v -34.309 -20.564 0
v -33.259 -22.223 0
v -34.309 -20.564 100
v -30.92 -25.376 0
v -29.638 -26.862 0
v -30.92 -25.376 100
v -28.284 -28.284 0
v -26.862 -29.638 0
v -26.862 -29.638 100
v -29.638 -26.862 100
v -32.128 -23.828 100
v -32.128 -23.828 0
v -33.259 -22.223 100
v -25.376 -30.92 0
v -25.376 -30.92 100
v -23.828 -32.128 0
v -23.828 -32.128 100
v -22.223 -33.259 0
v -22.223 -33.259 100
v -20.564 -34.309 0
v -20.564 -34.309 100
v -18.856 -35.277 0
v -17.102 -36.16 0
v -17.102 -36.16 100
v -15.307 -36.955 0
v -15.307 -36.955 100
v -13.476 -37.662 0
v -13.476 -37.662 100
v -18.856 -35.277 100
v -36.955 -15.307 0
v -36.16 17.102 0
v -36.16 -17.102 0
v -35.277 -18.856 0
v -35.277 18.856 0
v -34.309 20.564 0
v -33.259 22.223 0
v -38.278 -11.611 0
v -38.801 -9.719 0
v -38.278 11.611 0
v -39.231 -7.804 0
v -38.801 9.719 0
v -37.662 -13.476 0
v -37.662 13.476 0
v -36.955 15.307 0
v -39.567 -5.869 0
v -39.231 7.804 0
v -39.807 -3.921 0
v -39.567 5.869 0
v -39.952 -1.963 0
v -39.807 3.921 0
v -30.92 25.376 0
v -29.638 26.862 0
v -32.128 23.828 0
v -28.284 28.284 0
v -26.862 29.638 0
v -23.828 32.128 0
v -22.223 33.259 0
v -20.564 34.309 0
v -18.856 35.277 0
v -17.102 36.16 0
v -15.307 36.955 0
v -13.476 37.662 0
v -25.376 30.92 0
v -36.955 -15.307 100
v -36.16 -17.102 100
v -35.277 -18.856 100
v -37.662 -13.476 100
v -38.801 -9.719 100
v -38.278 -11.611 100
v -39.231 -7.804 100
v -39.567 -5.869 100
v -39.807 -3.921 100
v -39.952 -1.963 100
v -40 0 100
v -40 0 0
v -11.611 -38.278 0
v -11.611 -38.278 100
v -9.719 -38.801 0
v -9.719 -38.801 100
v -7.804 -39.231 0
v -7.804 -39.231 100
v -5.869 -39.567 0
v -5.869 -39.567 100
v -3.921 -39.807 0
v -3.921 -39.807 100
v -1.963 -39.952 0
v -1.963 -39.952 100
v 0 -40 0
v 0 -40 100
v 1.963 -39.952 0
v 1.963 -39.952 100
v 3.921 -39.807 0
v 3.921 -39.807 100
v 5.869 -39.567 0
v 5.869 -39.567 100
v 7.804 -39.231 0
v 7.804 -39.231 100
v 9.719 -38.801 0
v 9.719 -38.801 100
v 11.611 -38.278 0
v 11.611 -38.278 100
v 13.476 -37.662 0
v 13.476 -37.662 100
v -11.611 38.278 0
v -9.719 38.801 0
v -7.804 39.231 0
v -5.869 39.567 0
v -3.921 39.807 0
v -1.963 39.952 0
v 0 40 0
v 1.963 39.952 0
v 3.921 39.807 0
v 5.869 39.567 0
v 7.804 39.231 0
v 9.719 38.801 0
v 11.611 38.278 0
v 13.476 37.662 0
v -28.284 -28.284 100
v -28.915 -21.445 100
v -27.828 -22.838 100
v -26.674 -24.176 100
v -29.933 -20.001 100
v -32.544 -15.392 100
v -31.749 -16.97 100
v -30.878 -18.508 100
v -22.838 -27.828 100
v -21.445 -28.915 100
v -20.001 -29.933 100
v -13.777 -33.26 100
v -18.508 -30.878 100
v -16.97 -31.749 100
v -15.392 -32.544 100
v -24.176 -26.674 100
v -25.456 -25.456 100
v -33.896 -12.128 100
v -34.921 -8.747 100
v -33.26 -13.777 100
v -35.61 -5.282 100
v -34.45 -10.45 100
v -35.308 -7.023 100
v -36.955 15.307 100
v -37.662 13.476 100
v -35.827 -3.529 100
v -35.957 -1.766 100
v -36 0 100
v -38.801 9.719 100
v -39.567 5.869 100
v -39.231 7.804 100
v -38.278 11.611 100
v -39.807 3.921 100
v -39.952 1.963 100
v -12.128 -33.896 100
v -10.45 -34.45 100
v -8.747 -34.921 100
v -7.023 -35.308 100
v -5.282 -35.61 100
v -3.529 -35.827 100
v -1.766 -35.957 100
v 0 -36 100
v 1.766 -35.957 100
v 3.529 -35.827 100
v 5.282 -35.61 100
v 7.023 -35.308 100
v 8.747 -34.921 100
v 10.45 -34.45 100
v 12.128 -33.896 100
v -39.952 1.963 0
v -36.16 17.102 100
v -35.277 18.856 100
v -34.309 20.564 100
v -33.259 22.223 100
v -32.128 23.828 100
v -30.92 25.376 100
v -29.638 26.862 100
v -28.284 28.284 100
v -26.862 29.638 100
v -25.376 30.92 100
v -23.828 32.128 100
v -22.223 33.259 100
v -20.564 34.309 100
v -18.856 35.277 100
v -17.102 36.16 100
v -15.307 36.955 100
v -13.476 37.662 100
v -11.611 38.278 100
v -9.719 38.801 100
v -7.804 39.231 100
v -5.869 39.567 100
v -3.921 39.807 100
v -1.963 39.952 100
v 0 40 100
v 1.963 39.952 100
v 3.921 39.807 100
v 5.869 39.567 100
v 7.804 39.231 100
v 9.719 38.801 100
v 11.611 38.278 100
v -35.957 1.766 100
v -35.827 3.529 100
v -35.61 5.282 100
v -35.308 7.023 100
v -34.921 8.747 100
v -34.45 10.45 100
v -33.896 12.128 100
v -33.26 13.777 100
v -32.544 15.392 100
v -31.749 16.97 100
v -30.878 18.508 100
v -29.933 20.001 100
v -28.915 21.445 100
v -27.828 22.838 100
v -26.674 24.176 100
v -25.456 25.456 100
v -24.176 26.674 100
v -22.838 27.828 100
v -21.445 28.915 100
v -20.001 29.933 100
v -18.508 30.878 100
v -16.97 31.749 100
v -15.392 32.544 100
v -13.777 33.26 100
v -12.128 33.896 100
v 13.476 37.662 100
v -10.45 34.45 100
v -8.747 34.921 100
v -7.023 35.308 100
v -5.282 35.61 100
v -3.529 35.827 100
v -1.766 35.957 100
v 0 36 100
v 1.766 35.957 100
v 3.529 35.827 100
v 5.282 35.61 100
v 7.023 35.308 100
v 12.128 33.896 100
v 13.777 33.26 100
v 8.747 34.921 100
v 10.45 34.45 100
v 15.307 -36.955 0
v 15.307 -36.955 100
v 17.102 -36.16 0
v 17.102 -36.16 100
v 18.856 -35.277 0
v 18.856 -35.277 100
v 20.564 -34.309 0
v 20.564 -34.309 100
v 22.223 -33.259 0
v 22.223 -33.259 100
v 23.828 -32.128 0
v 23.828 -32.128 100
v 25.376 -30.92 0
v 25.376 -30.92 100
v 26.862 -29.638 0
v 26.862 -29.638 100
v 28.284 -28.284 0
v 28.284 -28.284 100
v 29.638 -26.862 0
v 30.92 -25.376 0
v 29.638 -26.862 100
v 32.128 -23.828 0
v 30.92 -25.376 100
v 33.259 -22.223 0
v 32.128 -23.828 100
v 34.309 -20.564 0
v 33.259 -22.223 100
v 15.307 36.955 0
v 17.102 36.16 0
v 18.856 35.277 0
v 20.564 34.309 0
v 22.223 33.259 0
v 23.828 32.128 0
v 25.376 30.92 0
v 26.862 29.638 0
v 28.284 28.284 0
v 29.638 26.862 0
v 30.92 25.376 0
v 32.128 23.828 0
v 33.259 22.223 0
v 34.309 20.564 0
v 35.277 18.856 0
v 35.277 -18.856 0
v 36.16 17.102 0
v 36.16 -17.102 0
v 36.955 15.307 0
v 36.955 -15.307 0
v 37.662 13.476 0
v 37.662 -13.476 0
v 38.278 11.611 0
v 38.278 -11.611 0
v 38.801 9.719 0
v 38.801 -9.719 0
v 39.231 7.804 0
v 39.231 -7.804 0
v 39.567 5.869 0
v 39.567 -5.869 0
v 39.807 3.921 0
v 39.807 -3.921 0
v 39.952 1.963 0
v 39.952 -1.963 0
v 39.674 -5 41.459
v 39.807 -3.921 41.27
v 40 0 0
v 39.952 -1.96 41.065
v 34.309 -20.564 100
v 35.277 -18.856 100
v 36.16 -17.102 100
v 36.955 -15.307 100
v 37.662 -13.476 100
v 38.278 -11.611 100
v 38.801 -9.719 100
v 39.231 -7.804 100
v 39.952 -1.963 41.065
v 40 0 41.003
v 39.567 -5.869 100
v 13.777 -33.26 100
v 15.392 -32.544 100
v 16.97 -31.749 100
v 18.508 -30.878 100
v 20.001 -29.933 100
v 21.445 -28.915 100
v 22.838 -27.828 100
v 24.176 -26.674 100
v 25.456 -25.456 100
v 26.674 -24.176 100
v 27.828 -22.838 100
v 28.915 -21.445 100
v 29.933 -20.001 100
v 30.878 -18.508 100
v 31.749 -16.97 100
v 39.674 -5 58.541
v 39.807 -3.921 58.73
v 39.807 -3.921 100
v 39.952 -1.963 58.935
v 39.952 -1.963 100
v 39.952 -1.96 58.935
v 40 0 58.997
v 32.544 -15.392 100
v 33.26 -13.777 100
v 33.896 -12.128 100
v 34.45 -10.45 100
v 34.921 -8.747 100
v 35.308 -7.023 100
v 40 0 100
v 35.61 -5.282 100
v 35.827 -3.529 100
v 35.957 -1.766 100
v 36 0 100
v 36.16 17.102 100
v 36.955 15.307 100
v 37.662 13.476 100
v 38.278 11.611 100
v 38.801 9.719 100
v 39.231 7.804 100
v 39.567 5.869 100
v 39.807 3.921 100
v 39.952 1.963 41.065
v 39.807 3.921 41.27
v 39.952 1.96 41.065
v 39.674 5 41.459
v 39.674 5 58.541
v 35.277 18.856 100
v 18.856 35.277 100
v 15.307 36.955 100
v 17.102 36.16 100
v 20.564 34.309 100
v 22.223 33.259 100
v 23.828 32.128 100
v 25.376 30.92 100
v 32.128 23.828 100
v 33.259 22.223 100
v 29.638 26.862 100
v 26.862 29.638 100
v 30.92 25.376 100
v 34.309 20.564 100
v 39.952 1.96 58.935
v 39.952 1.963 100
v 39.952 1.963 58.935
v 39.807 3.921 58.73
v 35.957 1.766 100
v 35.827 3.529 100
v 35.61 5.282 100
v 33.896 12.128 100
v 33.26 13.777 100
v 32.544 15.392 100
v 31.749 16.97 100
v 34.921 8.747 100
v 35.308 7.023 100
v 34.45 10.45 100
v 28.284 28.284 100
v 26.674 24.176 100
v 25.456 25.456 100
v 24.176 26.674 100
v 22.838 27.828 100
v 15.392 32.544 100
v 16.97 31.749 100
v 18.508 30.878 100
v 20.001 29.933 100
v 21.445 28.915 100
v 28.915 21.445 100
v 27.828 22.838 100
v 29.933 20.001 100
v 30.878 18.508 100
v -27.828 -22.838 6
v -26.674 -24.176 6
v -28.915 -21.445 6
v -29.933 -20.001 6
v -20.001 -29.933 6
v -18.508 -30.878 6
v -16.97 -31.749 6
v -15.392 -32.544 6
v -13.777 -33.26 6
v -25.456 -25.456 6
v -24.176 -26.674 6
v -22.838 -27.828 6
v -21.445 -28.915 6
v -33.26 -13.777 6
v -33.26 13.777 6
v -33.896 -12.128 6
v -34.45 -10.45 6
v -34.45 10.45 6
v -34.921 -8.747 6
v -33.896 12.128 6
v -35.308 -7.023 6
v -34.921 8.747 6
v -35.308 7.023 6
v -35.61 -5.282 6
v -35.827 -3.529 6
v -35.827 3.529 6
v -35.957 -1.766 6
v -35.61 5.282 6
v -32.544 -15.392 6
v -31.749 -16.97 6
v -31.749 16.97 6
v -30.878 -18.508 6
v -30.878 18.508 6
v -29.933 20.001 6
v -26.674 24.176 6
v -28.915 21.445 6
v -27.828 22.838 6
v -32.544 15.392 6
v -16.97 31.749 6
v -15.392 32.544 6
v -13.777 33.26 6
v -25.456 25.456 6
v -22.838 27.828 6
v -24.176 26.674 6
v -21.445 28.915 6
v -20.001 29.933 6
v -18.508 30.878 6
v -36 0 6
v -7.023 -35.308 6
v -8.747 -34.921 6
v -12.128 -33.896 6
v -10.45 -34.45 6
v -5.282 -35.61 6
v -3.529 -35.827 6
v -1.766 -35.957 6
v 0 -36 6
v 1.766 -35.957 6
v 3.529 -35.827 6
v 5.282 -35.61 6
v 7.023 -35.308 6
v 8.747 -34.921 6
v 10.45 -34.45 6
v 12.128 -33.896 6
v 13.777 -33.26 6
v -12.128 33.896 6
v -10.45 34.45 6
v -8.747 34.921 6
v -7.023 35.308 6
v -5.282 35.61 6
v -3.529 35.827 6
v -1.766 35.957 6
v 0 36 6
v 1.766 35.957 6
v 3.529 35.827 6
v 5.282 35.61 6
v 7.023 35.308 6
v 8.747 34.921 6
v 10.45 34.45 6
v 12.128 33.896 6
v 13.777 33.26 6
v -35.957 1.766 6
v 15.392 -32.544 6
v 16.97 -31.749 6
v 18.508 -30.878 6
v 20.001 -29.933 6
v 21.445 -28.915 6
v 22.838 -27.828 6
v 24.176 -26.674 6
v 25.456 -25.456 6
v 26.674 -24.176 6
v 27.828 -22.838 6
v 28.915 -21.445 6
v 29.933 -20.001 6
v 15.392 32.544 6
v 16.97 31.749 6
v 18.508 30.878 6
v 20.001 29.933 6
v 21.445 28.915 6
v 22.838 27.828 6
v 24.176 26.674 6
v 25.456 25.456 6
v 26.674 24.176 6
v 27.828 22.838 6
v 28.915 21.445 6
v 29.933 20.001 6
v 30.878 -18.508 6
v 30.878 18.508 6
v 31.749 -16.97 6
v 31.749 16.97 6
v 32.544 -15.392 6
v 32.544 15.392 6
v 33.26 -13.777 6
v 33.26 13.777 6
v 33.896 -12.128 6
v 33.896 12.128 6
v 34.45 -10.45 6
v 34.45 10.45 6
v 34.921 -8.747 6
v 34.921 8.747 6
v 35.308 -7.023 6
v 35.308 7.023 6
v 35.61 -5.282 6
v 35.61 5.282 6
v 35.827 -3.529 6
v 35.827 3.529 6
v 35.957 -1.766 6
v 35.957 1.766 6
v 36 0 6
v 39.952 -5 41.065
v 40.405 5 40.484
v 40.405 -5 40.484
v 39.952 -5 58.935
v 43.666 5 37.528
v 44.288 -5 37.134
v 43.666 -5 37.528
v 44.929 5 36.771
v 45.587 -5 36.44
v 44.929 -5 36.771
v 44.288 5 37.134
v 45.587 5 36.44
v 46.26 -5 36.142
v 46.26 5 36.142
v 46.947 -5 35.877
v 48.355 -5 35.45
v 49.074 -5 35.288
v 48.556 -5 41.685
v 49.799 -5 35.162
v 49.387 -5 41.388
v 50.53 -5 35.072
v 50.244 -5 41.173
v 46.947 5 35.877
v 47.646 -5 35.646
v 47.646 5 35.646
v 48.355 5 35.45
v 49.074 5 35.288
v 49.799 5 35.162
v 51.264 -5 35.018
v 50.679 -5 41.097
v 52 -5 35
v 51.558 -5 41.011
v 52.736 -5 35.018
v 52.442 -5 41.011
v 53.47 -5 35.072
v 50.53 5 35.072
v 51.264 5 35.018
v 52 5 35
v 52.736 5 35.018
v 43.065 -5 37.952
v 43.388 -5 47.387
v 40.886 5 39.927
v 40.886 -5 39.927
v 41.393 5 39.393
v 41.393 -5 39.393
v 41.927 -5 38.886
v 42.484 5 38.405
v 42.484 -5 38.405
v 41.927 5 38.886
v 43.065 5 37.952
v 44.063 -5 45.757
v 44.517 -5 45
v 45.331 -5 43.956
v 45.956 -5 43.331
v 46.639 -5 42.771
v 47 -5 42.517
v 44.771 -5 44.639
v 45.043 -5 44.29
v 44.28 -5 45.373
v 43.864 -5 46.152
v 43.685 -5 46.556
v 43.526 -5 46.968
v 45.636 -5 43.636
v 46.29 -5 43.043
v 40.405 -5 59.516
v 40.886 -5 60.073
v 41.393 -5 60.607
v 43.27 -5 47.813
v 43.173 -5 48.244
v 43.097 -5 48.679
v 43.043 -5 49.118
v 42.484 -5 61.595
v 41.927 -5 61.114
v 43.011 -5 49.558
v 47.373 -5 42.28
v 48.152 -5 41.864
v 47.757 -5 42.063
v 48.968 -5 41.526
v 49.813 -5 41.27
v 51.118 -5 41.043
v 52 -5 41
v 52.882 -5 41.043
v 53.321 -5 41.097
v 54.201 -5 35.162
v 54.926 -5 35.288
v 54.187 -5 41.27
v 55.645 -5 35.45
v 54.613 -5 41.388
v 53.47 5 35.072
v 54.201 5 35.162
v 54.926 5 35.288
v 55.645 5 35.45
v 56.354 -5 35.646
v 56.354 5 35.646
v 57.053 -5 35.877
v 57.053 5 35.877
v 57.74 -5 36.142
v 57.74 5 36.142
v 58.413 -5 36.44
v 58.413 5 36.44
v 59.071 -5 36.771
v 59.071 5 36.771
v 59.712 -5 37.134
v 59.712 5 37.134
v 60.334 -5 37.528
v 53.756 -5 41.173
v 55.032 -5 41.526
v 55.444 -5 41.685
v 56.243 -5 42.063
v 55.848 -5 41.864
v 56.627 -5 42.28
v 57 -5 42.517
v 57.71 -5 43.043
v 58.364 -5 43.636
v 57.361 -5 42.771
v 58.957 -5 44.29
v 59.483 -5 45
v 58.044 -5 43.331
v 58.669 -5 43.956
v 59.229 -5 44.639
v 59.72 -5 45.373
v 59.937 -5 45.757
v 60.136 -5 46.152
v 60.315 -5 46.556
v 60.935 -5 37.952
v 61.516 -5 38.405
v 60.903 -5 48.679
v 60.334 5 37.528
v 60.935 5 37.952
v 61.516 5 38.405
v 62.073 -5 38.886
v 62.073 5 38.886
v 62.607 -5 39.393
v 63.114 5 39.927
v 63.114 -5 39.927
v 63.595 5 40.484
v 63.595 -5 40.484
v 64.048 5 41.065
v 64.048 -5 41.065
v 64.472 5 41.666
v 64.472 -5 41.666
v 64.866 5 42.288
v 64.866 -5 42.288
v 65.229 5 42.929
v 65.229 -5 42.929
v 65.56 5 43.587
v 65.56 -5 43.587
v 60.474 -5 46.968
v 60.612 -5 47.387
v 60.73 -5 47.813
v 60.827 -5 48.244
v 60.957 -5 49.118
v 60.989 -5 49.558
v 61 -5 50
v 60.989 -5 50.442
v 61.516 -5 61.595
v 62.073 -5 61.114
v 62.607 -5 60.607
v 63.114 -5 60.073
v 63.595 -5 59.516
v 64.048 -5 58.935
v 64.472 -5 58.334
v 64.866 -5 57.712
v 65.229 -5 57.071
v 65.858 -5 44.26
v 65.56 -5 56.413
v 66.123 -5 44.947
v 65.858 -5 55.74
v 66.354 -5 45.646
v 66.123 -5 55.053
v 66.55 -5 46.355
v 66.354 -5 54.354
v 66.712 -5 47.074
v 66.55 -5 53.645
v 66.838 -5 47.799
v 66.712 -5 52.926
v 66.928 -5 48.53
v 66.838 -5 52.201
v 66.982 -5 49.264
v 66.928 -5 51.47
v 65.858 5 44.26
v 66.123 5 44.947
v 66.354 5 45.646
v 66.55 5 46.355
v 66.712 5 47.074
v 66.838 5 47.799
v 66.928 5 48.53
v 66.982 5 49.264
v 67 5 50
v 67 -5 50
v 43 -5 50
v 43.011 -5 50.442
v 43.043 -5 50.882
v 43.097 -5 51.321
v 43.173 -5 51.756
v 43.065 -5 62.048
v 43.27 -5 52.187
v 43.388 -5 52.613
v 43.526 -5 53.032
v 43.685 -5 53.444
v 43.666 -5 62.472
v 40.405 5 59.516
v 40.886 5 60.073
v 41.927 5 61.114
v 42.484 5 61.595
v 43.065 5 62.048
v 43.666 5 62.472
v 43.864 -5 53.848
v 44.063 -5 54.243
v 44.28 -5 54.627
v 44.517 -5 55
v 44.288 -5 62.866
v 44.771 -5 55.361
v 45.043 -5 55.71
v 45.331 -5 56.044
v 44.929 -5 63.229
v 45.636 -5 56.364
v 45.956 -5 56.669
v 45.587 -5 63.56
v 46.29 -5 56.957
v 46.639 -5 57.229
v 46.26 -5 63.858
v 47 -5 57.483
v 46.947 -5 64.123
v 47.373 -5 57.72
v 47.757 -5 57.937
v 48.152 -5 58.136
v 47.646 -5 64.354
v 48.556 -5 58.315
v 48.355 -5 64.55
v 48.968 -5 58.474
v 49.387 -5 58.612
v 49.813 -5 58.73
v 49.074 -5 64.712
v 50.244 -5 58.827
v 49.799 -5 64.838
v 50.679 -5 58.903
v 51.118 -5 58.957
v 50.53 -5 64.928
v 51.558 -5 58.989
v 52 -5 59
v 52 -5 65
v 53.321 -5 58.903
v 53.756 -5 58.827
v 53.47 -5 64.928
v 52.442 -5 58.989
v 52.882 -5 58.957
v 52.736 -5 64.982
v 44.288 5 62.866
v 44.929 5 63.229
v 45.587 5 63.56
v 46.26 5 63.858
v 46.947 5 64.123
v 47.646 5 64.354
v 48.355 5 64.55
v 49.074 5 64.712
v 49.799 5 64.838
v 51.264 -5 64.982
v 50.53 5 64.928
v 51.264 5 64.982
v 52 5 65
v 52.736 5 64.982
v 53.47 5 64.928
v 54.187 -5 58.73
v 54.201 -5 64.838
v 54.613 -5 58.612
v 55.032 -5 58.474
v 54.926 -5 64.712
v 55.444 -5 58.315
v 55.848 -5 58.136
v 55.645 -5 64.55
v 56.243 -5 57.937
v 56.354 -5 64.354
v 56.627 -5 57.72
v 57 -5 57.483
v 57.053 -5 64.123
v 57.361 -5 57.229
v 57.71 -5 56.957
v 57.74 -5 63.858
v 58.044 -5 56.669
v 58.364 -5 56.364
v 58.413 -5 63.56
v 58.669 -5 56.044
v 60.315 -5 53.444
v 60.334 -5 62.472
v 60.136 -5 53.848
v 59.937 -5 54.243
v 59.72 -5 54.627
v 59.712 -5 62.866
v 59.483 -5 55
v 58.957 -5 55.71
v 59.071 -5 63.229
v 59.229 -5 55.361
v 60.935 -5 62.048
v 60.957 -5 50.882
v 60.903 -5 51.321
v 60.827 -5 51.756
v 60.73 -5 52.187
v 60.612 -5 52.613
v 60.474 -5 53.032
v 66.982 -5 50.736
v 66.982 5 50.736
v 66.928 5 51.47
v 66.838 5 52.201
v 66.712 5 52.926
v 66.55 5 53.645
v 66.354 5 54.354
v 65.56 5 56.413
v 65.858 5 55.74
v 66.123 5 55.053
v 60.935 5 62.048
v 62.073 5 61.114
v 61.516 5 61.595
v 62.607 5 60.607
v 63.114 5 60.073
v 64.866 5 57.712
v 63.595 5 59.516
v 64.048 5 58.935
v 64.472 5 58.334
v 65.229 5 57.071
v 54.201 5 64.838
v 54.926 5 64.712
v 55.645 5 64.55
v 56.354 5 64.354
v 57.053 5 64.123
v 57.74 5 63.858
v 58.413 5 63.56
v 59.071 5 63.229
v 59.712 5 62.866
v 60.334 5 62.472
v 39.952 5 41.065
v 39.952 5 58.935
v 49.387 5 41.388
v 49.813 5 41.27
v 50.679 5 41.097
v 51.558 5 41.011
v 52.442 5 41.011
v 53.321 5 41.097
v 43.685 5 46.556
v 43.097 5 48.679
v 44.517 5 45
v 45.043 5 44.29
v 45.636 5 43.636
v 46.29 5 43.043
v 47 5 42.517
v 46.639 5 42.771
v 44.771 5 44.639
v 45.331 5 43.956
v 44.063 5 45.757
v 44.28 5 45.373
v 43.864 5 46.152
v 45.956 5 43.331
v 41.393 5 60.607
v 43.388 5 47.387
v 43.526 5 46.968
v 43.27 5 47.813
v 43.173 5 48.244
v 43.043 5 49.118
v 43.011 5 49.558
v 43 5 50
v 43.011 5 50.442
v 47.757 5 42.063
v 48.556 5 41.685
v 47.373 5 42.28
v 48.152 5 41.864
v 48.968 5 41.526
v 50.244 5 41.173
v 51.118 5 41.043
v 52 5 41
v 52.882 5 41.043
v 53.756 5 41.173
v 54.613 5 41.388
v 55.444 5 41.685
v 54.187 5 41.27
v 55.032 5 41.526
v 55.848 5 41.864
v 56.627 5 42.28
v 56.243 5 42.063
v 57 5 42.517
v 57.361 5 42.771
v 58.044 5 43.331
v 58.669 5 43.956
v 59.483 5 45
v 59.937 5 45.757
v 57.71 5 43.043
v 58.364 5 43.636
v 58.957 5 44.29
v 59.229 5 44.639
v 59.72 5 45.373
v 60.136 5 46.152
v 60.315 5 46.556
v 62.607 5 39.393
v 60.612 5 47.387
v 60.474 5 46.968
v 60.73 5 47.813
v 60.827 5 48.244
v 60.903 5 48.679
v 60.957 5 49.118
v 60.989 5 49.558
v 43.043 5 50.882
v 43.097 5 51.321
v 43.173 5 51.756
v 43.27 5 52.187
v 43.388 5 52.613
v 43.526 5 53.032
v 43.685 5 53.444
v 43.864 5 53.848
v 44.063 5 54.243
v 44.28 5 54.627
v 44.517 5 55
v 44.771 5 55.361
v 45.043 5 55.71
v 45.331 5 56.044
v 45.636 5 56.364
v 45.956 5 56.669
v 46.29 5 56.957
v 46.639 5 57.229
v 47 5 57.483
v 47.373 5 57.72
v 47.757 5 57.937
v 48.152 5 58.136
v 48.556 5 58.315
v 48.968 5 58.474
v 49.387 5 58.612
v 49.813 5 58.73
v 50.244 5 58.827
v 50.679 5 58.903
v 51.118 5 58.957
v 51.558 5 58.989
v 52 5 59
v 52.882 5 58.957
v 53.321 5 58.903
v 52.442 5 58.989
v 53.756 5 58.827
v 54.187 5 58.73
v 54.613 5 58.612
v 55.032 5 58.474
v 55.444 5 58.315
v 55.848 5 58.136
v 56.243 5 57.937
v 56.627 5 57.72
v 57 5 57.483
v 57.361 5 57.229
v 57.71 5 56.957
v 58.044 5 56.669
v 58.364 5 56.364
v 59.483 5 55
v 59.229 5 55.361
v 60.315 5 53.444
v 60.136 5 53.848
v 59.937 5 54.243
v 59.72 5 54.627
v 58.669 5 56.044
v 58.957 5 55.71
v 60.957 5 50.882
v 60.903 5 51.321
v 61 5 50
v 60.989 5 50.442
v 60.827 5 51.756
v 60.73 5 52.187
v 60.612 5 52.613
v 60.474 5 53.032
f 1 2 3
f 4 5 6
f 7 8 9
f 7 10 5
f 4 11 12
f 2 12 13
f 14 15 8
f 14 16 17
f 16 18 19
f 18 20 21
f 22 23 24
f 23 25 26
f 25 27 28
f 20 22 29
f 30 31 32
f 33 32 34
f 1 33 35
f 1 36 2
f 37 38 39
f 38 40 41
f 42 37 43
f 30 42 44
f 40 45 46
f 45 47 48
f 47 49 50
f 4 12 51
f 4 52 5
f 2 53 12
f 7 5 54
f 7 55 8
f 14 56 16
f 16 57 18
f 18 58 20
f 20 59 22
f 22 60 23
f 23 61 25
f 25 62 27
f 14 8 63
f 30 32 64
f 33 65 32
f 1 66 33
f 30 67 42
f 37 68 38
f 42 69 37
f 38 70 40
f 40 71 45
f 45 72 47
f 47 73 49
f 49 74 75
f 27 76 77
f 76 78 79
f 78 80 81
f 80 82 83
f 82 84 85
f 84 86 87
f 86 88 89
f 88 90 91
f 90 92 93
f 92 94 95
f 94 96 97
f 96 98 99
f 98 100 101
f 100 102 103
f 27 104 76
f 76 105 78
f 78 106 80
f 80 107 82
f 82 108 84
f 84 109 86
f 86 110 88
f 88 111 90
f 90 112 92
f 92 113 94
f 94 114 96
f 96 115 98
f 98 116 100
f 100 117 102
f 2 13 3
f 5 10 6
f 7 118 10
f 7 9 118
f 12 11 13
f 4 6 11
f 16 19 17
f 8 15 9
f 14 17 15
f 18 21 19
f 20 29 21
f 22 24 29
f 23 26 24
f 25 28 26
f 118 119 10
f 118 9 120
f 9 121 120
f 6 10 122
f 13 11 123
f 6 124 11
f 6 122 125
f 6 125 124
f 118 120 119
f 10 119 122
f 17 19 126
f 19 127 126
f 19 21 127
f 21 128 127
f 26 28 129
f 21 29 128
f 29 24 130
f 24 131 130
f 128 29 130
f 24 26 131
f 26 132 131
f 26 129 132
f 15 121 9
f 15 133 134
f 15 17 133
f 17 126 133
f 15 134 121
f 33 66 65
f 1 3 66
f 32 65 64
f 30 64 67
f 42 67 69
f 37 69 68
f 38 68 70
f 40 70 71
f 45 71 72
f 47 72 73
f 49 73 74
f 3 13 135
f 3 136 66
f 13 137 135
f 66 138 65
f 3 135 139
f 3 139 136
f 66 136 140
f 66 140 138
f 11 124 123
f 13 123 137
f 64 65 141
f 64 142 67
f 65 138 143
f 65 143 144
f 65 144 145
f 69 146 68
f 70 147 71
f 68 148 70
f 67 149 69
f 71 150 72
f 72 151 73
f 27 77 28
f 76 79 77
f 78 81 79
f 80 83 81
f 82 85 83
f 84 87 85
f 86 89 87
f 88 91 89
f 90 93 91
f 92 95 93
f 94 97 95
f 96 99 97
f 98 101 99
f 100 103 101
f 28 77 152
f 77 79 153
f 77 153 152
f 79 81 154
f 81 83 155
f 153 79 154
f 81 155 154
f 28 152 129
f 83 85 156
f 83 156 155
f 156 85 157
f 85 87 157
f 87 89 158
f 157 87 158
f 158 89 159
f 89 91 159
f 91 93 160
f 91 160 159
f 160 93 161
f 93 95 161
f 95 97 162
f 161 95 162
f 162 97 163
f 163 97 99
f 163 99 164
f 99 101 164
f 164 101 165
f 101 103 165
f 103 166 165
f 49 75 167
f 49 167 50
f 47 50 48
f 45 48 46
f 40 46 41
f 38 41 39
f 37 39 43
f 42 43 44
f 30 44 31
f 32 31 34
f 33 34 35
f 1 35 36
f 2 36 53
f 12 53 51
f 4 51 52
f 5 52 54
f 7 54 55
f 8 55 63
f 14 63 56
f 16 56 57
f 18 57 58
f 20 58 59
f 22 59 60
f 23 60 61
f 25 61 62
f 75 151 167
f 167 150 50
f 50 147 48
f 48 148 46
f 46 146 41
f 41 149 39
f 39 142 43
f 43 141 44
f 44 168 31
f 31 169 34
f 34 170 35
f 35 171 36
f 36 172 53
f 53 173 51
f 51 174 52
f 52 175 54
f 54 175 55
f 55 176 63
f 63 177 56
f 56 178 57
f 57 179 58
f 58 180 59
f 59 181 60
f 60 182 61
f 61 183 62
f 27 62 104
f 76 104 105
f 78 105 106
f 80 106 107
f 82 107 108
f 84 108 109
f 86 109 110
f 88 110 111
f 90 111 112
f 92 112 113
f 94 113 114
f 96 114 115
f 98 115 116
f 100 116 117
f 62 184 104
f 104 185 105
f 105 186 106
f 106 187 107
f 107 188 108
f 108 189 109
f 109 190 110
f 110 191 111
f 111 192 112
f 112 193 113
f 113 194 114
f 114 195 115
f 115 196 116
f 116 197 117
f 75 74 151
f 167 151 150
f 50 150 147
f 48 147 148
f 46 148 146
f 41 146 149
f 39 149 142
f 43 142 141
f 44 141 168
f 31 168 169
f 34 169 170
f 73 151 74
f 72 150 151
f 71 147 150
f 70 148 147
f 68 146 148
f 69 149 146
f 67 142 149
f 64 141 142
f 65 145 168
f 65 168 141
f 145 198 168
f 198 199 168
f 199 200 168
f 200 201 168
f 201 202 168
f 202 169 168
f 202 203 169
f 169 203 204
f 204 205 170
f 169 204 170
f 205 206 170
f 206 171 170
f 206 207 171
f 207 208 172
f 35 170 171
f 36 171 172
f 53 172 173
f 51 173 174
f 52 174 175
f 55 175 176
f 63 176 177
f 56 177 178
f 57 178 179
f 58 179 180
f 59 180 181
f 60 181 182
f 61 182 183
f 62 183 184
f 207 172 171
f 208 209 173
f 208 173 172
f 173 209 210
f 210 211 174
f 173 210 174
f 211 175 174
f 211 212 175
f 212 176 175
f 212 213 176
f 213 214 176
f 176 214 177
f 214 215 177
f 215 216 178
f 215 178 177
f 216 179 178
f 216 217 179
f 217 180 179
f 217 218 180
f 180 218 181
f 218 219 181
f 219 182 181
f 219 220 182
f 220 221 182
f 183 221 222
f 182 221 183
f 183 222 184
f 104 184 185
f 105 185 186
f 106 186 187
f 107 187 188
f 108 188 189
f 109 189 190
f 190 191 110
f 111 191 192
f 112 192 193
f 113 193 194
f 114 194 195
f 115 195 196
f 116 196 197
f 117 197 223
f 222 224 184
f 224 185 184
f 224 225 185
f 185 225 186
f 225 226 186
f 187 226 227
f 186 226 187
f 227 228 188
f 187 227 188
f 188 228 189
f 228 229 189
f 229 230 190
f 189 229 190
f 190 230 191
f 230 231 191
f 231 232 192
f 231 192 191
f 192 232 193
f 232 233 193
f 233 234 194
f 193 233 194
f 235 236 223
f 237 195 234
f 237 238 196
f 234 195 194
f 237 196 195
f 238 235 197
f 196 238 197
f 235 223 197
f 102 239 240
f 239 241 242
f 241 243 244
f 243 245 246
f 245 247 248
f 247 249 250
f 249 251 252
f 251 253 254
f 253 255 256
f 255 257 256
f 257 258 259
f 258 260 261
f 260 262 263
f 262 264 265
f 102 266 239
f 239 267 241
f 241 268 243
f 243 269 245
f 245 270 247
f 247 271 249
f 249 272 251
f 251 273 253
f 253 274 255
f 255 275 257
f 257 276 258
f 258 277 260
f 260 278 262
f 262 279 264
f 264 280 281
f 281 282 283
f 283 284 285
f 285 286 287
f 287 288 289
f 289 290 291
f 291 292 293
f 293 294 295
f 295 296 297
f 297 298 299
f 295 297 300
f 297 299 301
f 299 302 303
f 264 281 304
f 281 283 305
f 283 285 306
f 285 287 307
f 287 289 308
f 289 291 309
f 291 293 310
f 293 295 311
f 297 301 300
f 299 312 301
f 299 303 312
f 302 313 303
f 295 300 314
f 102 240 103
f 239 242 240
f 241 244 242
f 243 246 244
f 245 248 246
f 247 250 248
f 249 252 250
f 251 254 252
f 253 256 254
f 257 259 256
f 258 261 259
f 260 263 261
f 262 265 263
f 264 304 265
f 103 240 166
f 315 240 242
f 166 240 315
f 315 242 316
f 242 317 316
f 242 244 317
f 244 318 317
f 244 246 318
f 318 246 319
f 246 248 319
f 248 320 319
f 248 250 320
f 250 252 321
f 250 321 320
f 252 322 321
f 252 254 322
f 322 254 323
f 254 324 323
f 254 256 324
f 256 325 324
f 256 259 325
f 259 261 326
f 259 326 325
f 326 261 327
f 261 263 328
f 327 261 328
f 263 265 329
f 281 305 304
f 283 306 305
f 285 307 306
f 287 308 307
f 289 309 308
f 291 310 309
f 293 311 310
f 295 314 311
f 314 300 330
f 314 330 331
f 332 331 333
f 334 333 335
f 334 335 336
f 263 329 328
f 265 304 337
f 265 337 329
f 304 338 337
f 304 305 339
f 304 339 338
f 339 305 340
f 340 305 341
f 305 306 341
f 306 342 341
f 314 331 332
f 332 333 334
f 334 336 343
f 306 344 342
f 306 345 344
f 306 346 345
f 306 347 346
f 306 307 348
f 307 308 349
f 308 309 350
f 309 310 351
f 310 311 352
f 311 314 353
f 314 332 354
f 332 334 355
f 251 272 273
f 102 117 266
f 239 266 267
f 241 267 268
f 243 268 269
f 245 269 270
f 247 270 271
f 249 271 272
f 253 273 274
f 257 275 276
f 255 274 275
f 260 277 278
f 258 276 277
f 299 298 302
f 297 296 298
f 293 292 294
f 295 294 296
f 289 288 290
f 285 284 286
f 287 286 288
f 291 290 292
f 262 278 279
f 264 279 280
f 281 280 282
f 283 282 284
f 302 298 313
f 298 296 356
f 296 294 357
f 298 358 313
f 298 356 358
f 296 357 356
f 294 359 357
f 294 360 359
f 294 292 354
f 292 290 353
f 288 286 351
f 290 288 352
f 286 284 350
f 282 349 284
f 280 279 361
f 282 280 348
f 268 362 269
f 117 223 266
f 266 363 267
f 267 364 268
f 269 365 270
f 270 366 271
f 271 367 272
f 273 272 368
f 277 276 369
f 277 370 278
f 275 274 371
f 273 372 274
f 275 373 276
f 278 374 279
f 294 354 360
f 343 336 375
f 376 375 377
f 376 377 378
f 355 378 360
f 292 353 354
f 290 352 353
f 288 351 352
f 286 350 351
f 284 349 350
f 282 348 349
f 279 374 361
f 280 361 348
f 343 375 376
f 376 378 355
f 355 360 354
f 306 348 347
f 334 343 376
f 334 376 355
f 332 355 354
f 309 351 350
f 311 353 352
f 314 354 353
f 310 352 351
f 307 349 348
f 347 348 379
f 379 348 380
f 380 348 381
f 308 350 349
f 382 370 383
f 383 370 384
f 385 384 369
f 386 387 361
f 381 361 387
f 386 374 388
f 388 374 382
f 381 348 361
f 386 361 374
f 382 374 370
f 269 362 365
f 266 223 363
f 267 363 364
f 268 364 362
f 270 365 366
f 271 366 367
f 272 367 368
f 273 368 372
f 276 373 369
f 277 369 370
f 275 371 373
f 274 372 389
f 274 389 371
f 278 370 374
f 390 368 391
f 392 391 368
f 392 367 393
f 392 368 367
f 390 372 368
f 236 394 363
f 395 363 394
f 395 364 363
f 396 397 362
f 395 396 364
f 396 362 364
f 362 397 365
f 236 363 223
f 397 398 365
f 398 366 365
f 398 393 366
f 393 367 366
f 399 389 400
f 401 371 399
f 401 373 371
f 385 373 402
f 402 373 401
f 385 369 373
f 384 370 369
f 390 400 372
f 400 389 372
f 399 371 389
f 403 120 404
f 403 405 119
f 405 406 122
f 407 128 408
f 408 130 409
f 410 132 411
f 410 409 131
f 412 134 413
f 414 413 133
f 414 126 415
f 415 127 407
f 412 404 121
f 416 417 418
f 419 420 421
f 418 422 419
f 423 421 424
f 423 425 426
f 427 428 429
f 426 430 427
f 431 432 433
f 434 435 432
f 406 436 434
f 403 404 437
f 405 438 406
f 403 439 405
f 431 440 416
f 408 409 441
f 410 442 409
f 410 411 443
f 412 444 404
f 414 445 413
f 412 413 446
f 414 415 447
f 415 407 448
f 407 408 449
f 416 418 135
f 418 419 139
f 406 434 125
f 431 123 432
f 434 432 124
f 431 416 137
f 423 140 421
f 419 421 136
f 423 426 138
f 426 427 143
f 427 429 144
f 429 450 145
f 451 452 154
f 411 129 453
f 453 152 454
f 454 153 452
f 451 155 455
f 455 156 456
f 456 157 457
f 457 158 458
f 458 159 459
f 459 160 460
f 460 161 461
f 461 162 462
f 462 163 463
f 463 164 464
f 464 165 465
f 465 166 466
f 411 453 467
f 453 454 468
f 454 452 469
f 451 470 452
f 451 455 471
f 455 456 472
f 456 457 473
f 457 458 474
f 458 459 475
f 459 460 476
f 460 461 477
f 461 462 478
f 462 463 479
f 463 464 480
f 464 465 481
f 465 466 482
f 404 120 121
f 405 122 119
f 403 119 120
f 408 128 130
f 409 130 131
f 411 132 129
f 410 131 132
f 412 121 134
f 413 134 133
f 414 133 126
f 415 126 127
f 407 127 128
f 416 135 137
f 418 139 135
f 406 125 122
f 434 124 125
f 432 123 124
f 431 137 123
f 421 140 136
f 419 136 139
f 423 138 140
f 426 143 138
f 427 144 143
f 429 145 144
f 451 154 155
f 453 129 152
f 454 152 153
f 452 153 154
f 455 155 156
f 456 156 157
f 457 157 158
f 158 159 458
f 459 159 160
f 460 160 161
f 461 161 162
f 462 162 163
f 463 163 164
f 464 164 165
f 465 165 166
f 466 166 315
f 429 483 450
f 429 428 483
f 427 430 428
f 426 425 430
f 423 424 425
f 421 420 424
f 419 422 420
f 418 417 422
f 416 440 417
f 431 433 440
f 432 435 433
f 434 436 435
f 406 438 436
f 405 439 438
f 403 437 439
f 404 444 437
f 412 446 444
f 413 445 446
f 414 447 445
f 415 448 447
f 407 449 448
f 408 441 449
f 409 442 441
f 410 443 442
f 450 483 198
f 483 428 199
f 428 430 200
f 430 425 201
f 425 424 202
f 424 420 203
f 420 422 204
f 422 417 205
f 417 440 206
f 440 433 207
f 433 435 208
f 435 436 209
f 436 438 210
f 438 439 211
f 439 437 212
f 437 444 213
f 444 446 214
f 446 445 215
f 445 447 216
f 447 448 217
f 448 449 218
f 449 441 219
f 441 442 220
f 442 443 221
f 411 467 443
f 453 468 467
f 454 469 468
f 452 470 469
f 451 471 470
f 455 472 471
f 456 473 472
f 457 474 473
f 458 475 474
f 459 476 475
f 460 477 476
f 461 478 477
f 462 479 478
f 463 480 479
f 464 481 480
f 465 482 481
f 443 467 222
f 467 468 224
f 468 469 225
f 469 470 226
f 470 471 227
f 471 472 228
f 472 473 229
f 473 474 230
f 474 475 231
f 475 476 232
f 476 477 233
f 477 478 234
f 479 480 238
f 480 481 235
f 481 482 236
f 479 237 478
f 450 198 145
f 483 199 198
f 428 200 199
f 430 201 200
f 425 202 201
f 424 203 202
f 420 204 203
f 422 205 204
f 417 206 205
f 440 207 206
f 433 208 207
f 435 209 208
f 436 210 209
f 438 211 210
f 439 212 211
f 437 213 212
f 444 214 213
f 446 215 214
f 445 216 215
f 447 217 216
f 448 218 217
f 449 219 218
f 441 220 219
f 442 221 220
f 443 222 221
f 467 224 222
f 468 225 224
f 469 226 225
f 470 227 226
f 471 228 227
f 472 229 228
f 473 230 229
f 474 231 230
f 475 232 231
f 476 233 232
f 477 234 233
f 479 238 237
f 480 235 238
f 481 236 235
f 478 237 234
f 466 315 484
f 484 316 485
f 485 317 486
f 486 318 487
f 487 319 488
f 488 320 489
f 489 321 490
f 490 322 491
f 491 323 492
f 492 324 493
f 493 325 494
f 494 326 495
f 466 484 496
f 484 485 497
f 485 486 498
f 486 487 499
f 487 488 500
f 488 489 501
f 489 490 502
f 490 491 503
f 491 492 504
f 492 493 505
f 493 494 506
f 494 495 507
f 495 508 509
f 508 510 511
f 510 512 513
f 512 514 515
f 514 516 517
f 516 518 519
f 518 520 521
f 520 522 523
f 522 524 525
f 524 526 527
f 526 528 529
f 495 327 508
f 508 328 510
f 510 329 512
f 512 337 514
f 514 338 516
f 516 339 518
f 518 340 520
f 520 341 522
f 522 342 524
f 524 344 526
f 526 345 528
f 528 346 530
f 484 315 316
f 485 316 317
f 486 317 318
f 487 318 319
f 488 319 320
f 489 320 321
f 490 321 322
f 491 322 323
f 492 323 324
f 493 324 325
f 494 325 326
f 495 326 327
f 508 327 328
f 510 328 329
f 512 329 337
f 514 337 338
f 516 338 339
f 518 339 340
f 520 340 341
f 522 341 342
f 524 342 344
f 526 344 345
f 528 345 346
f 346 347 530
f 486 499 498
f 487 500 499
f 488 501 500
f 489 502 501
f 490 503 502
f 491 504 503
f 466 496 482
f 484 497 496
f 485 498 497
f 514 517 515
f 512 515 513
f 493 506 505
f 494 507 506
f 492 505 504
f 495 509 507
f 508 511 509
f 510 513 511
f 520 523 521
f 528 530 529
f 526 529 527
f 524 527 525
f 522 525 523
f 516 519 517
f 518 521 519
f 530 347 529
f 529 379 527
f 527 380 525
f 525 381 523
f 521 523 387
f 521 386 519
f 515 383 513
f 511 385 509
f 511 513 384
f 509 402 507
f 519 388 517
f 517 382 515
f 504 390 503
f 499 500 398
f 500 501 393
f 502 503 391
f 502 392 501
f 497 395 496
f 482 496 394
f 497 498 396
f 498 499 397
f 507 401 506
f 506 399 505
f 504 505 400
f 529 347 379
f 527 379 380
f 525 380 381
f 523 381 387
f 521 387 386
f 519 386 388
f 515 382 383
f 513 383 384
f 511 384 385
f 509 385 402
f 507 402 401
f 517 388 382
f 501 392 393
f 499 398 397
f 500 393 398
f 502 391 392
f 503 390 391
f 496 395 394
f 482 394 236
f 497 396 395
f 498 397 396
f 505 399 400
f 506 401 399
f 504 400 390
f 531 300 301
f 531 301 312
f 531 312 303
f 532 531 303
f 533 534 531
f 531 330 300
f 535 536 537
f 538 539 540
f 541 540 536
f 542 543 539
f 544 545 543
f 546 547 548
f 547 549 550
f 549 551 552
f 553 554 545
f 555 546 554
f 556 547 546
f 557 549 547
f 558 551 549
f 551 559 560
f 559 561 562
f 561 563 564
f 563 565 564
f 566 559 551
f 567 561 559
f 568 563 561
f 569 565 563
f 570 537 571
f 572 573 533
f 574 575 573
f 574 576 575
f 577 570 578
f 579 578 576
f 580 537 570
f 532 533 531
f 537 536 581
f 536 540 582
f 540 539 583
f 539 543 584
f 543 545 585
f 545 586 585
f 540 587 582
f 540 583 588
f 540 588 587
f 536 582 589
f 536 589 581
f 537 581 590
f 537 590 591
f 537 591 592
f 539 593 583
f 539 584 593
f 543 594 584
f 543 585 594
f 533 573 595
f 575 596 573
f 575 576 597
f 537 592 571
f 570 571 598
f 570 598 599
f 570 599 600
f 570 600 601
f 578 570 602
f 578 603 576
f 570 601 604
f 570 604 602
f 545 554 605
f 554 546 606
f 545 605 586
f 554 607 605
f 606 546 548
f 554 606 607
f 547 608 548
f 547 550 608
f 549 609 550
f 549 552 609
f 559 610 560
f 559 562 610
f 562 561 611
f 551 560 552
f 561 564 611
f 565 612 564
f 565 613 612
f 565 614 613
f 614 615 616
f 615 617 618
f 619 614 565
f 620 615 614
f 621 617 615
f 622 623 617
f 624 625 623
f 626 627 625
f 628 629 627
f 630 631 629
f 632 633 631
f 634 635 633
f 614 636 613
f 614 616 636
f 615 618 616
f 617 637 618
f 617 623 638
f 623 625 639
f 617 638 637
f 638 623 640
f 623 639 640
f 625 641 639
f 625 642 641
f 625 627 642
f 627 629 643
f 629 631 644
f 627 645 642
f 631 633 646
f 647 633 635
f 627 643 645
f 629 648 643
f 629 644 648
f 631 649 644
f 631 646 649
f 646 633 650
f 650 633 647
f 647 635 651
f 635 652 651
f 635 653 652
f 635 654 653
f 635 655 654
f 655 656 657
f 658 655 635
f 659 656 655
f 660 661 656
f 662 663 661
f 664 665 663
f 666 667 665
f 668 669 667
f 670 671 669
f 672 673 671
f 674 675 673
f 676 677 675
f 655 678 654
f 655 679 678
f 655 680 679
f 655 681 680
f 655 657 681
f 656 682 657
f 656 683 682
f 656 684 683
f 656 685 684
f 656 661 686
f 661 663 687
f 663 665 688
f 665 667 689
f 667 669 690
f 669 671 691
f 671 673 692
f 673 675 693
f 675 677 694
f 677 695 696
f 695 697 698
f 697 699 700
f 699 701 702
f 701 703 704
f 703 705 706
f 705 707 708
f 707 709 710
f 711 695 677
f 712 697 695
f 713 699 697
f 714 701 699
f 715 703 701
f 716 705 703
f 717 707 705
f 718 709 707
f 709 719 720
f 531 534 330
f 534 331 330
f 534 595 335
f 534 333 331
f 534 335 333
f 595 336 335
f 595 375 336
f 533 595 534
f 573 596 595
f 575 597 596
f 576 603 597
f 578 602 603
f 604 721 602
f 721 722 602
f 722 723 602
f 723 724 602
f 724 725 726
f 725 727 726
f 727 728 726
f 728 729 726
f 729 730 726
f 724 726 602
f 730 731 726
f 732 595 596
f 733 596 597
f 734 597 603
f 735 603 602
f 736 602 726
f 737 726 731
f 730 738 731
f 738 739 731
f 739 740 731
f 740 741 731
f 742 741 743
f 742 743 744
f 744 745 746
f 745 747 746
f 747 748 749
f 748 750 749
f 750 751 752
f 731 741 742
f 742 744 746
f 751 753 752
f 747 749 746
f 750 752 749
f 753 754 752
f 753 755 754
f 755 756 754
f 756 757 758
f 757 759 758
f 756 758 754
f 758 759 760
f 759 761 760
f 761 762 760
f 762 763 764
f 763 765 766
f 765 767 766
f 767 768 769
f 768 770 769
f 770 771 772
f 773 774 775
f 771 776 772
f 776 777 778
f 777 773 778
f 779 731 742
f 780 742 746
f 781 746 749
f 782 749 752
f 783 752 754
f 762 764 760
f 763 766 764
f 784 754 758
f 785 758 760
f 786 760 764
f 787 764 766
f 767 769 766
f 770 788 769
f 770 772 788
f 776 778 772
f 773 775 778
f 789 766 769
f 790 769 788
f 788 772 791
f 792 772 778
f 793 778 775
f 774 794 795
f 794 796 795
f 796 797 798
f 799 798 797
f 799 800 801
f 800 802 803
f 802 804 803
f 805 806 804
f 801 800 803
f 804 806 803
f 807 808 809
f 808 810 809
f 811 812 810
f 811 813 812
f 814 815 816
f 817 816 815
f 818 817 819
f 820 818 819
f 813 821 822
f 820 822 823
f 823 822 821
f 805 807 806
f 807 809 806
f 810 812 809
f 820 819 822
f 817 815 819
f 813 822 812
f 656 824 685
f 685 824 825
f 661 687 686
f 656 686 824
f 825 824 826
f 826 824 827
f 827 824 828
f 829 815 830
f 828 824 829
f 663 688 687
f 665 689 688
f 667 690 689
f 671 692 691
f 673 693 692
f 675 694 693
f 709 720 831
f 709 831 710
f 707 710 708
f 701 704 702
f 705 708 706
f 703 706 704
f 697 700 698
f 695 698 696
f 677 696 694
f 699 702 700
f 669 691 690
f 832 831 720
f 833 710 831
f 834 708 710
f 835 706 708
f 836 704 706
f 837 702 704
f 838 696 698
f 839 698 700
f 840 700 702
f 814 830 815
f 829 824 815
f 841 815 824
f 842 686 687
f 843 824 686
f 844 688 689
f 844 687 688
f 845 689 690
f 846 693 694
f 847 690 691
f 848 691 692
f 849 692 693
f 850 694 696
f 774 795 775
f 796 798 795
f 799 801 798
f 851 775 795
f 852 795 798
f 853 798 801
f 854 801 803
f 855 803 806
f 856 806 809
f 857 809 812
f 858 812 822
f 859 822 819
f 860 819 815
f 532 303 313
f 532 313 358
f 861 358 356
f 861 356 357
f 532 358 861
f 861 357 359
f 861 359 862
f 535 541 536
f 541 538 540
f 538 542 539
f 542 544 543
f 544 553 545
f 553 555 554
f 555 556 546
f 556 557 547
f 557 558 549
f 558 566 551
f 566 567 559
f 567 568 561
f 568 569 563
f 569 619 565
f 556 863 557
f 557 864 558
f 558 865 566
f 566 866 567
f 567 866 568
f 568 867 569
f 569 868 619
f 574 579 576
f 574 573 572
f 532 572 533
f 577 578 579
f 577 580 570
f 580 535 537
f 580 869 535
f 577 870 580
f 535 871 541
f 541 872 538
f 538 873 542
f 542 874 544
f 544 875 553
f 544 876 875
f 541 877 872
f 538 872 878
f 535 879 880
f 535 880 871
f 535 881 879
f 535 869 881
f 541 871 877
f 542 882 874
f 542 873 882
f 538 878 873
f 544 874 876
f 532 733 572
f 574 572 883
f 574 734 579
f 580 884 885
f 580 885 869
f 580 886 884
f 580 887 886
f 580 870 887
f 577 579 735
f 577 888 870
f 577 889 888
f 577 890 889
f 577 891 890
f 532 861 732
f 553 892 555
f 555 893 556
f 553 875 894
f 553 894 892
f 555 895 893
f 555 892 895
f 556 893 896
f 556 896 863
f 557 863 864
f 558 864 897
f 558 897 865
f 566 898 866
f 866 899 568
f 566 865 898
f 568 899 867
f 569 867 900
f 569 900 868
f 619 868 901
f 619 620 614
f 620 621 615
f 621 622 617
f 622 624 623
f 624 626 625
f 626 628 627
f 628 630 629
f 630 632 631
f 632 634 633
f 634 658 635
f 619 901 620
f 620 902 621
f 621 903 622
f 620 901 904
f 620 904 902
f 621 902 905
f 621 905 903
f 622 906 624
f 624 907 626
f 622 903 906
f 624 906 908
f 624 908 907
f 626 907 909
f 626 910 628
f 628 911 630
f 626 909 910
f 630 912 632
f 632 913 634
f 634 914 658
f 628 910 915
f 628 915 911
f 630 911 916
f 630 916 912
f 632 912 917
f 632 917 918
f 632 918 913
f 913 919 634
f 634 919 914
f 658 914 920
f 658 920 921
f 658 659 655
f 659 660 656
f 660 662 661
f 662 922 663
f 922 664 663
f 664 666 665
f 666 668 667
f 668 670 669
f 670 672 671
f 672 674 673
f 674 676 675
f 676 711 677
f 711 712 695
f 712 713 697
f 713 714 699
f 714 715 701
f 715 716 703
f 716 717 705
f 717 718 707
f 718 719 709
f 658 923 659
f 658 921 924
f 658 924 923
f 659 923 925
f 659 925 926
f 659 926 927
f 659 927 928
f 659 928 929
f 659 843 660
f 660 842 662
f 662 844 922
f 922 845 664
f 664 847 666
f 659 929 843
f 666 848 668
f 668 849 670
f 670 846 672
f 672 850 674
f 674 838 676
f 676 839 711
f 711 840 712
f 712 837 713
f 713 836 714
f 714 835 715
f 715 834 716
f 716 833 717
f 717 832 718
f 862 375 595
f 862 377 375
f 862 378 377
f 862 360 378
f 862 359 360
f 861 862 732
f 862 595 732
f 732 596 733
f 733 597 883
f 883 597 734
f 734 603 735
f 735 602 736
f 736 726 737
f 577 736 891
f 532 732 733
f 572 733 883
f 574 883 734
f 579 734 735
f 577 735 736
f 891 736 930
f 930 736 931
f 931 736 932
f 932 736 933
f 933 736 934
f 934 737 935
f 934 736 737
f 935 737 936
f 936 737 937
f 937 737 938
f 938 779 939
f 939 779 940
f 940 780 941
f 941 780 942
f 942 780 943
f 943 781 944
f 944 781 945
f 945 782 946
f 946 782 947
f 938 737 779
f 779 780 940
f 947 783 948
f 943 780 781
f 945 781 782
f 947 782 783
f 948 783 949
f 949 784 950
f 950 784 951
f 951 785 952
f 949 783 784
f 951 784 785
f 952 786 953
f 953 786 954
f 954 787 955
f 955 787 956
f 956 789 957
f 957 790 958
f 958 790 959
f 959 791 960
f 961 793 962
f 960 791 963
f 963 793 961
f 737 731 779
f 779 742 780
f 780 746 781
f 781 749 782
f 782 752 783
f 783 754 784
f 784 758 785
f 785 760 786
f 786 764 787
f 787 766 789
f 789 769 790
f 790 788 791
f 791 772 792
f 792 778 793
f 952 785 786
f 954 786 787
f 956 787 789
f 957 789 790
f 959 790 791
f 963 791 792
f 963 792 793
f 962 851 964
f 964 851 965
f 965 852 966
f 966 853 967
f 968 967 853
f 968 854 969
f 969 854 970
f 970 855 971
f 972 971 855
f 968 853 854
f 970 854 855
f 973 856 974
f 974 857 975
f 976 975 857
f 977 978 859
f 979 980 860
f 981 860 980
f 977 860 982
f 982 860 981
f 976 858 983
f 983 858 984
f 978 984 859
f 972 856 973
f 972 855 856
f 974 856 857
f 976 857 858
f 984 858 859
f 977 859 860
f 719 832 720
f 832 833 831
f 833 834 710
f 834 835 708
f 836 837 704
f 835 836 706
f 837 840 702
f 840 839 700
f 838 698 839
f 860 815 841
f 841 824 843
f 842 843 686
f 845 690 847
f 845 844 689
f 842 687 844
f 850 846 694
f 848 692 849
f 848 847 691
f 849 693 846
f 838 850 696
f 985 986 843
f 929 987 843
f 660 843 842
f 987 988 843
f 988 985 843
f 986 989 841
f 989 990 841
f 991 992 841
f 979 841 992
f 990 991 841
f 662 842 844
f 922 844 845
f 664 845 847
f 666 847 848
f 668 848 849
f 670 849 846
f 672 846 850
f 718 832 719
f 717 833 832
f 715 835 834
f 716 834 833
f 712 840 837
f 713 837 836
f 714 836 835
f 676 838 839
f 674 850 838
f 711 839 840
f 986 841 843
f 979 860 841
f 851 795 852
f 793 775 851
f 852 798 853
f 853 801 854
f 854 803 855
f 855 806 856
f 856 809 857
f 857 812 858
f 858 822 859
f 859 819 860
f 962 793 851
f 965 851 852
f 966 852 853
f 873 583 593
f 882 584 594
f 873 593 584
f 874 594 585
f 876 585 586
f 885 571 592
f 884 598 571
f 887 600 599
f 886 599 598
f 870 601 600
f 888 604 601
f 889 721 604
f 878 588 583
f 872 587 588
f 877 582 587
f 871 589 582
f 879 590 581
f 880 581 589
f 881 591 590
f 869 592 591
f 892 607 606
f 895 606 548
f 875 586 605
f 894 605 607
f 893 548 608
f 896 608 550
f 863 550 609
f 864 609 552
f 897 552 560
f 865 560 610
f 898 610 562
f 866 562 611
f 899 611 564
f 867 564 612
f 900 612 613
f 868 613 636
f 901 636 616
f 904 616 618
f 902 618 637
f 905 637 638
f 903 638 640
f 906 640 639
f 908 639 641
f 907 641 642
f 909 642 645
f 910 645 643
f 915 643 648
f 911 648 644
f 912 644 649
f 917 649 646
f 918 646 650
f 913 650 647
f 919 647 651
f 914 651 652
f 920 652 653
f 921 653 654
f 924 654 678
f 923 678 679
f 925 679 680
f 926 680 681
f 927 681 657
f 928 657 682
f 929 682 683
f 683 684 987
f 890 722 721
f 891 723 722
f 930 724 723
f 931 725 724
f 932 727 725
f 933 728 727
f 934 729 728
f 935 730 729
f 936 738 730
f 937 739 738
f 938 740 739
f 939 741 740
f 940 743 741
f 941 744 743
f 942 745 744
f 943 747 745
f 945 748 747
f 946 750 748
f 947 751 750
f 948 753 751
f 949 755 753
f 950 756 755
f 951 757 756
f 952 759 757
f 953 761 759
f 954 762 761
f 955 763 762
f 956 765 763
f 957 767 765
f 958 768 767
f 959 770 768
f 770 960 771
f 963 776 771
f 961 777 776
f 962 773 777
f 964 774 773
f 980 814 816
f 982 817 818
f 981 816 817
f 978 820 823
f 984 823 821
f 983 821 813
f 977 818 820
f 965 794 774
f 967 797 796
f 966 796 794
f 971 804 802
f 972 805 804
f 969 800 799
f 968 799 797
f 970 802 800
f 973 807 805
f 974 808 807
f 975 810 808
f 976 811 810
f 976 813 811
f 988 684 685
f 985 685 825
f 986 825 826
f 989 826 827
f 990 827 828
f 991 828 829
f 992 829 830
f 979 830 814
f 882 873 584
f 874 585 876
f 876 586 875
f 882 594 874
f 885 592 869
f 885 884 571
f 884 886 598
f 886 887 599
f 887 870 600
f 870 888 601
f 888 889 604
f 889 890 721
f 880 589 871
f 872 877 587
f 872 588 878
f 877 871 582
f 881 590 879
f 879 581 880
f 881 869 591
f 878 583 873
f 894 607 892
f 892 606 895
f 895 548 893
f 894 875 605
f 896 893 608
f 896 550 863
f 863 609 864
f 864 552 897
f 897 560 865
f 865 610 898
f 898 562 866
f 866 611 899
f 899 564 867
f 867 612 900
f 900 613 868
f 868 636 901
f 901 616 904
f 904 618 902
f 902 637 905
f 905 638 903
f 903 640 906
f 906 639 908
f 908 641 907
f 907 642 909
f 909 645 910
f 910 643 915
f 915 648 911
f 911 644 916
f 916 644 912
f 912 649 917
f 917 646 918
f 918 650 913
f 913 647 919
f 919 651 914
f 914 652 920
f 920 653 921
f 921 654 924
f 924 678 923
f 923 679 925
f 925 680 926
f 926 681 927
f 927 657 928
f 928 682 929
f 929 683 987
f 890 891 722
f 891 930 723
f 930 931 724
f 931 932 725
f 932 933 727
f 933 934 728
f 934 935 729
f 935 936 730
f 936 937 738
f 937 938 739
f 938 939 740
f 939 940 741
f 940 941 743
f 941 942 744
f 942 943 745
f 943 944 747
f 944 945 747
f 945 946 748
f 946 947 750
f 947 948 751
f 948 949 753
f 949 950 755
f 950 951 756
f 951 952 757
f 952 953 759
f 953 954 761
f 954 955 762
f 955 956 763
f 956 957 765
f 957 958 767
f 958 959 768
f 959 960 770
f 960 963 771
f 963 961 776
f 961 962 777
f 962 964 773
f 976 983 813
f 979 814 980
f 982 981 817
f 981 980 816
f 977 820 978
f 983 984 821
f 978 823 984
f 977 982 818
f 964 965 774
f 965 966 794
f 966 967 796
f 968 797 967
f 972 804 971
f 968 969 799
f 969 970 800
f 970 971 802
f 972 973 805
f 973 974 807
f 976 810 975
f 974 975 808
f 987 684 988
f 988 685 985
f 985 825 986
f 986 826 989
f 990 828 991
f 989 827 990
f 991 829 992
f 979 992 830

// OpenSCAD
$fn = 128;

outer_d = 80;
H = 100;
wall = 4;
bottom_t = 6;
inner_d = outer_d - 2 * wall;

handle_r = 12;
handle_width = 6;
handle_depth = 10;
handle_cx = outer_d / 2 + handle_r;

module cup() {
    difference() {
        cylinder(d = outer_d, h = H);
        translate([0, 0, bottom_t]) {
            cylinder(d = inner_d, h = H);
        }
    }
}

module handle() {
    translate([handle_cx, 0, H / 2]) {
        rotate([90, 0, 0]) {
            translate([0, 0, -handle_depth / 2]) {
                difference() {
                    cylinder(d = 2 * (handle_r + handle_width / 2), h = handle_depth);
                    cylinder(d = 2 * (handle_r - handle_width / 2), h = handle_depth);
                }
            }
        }
    }
}

union() {
    cup();
    handle();
}
